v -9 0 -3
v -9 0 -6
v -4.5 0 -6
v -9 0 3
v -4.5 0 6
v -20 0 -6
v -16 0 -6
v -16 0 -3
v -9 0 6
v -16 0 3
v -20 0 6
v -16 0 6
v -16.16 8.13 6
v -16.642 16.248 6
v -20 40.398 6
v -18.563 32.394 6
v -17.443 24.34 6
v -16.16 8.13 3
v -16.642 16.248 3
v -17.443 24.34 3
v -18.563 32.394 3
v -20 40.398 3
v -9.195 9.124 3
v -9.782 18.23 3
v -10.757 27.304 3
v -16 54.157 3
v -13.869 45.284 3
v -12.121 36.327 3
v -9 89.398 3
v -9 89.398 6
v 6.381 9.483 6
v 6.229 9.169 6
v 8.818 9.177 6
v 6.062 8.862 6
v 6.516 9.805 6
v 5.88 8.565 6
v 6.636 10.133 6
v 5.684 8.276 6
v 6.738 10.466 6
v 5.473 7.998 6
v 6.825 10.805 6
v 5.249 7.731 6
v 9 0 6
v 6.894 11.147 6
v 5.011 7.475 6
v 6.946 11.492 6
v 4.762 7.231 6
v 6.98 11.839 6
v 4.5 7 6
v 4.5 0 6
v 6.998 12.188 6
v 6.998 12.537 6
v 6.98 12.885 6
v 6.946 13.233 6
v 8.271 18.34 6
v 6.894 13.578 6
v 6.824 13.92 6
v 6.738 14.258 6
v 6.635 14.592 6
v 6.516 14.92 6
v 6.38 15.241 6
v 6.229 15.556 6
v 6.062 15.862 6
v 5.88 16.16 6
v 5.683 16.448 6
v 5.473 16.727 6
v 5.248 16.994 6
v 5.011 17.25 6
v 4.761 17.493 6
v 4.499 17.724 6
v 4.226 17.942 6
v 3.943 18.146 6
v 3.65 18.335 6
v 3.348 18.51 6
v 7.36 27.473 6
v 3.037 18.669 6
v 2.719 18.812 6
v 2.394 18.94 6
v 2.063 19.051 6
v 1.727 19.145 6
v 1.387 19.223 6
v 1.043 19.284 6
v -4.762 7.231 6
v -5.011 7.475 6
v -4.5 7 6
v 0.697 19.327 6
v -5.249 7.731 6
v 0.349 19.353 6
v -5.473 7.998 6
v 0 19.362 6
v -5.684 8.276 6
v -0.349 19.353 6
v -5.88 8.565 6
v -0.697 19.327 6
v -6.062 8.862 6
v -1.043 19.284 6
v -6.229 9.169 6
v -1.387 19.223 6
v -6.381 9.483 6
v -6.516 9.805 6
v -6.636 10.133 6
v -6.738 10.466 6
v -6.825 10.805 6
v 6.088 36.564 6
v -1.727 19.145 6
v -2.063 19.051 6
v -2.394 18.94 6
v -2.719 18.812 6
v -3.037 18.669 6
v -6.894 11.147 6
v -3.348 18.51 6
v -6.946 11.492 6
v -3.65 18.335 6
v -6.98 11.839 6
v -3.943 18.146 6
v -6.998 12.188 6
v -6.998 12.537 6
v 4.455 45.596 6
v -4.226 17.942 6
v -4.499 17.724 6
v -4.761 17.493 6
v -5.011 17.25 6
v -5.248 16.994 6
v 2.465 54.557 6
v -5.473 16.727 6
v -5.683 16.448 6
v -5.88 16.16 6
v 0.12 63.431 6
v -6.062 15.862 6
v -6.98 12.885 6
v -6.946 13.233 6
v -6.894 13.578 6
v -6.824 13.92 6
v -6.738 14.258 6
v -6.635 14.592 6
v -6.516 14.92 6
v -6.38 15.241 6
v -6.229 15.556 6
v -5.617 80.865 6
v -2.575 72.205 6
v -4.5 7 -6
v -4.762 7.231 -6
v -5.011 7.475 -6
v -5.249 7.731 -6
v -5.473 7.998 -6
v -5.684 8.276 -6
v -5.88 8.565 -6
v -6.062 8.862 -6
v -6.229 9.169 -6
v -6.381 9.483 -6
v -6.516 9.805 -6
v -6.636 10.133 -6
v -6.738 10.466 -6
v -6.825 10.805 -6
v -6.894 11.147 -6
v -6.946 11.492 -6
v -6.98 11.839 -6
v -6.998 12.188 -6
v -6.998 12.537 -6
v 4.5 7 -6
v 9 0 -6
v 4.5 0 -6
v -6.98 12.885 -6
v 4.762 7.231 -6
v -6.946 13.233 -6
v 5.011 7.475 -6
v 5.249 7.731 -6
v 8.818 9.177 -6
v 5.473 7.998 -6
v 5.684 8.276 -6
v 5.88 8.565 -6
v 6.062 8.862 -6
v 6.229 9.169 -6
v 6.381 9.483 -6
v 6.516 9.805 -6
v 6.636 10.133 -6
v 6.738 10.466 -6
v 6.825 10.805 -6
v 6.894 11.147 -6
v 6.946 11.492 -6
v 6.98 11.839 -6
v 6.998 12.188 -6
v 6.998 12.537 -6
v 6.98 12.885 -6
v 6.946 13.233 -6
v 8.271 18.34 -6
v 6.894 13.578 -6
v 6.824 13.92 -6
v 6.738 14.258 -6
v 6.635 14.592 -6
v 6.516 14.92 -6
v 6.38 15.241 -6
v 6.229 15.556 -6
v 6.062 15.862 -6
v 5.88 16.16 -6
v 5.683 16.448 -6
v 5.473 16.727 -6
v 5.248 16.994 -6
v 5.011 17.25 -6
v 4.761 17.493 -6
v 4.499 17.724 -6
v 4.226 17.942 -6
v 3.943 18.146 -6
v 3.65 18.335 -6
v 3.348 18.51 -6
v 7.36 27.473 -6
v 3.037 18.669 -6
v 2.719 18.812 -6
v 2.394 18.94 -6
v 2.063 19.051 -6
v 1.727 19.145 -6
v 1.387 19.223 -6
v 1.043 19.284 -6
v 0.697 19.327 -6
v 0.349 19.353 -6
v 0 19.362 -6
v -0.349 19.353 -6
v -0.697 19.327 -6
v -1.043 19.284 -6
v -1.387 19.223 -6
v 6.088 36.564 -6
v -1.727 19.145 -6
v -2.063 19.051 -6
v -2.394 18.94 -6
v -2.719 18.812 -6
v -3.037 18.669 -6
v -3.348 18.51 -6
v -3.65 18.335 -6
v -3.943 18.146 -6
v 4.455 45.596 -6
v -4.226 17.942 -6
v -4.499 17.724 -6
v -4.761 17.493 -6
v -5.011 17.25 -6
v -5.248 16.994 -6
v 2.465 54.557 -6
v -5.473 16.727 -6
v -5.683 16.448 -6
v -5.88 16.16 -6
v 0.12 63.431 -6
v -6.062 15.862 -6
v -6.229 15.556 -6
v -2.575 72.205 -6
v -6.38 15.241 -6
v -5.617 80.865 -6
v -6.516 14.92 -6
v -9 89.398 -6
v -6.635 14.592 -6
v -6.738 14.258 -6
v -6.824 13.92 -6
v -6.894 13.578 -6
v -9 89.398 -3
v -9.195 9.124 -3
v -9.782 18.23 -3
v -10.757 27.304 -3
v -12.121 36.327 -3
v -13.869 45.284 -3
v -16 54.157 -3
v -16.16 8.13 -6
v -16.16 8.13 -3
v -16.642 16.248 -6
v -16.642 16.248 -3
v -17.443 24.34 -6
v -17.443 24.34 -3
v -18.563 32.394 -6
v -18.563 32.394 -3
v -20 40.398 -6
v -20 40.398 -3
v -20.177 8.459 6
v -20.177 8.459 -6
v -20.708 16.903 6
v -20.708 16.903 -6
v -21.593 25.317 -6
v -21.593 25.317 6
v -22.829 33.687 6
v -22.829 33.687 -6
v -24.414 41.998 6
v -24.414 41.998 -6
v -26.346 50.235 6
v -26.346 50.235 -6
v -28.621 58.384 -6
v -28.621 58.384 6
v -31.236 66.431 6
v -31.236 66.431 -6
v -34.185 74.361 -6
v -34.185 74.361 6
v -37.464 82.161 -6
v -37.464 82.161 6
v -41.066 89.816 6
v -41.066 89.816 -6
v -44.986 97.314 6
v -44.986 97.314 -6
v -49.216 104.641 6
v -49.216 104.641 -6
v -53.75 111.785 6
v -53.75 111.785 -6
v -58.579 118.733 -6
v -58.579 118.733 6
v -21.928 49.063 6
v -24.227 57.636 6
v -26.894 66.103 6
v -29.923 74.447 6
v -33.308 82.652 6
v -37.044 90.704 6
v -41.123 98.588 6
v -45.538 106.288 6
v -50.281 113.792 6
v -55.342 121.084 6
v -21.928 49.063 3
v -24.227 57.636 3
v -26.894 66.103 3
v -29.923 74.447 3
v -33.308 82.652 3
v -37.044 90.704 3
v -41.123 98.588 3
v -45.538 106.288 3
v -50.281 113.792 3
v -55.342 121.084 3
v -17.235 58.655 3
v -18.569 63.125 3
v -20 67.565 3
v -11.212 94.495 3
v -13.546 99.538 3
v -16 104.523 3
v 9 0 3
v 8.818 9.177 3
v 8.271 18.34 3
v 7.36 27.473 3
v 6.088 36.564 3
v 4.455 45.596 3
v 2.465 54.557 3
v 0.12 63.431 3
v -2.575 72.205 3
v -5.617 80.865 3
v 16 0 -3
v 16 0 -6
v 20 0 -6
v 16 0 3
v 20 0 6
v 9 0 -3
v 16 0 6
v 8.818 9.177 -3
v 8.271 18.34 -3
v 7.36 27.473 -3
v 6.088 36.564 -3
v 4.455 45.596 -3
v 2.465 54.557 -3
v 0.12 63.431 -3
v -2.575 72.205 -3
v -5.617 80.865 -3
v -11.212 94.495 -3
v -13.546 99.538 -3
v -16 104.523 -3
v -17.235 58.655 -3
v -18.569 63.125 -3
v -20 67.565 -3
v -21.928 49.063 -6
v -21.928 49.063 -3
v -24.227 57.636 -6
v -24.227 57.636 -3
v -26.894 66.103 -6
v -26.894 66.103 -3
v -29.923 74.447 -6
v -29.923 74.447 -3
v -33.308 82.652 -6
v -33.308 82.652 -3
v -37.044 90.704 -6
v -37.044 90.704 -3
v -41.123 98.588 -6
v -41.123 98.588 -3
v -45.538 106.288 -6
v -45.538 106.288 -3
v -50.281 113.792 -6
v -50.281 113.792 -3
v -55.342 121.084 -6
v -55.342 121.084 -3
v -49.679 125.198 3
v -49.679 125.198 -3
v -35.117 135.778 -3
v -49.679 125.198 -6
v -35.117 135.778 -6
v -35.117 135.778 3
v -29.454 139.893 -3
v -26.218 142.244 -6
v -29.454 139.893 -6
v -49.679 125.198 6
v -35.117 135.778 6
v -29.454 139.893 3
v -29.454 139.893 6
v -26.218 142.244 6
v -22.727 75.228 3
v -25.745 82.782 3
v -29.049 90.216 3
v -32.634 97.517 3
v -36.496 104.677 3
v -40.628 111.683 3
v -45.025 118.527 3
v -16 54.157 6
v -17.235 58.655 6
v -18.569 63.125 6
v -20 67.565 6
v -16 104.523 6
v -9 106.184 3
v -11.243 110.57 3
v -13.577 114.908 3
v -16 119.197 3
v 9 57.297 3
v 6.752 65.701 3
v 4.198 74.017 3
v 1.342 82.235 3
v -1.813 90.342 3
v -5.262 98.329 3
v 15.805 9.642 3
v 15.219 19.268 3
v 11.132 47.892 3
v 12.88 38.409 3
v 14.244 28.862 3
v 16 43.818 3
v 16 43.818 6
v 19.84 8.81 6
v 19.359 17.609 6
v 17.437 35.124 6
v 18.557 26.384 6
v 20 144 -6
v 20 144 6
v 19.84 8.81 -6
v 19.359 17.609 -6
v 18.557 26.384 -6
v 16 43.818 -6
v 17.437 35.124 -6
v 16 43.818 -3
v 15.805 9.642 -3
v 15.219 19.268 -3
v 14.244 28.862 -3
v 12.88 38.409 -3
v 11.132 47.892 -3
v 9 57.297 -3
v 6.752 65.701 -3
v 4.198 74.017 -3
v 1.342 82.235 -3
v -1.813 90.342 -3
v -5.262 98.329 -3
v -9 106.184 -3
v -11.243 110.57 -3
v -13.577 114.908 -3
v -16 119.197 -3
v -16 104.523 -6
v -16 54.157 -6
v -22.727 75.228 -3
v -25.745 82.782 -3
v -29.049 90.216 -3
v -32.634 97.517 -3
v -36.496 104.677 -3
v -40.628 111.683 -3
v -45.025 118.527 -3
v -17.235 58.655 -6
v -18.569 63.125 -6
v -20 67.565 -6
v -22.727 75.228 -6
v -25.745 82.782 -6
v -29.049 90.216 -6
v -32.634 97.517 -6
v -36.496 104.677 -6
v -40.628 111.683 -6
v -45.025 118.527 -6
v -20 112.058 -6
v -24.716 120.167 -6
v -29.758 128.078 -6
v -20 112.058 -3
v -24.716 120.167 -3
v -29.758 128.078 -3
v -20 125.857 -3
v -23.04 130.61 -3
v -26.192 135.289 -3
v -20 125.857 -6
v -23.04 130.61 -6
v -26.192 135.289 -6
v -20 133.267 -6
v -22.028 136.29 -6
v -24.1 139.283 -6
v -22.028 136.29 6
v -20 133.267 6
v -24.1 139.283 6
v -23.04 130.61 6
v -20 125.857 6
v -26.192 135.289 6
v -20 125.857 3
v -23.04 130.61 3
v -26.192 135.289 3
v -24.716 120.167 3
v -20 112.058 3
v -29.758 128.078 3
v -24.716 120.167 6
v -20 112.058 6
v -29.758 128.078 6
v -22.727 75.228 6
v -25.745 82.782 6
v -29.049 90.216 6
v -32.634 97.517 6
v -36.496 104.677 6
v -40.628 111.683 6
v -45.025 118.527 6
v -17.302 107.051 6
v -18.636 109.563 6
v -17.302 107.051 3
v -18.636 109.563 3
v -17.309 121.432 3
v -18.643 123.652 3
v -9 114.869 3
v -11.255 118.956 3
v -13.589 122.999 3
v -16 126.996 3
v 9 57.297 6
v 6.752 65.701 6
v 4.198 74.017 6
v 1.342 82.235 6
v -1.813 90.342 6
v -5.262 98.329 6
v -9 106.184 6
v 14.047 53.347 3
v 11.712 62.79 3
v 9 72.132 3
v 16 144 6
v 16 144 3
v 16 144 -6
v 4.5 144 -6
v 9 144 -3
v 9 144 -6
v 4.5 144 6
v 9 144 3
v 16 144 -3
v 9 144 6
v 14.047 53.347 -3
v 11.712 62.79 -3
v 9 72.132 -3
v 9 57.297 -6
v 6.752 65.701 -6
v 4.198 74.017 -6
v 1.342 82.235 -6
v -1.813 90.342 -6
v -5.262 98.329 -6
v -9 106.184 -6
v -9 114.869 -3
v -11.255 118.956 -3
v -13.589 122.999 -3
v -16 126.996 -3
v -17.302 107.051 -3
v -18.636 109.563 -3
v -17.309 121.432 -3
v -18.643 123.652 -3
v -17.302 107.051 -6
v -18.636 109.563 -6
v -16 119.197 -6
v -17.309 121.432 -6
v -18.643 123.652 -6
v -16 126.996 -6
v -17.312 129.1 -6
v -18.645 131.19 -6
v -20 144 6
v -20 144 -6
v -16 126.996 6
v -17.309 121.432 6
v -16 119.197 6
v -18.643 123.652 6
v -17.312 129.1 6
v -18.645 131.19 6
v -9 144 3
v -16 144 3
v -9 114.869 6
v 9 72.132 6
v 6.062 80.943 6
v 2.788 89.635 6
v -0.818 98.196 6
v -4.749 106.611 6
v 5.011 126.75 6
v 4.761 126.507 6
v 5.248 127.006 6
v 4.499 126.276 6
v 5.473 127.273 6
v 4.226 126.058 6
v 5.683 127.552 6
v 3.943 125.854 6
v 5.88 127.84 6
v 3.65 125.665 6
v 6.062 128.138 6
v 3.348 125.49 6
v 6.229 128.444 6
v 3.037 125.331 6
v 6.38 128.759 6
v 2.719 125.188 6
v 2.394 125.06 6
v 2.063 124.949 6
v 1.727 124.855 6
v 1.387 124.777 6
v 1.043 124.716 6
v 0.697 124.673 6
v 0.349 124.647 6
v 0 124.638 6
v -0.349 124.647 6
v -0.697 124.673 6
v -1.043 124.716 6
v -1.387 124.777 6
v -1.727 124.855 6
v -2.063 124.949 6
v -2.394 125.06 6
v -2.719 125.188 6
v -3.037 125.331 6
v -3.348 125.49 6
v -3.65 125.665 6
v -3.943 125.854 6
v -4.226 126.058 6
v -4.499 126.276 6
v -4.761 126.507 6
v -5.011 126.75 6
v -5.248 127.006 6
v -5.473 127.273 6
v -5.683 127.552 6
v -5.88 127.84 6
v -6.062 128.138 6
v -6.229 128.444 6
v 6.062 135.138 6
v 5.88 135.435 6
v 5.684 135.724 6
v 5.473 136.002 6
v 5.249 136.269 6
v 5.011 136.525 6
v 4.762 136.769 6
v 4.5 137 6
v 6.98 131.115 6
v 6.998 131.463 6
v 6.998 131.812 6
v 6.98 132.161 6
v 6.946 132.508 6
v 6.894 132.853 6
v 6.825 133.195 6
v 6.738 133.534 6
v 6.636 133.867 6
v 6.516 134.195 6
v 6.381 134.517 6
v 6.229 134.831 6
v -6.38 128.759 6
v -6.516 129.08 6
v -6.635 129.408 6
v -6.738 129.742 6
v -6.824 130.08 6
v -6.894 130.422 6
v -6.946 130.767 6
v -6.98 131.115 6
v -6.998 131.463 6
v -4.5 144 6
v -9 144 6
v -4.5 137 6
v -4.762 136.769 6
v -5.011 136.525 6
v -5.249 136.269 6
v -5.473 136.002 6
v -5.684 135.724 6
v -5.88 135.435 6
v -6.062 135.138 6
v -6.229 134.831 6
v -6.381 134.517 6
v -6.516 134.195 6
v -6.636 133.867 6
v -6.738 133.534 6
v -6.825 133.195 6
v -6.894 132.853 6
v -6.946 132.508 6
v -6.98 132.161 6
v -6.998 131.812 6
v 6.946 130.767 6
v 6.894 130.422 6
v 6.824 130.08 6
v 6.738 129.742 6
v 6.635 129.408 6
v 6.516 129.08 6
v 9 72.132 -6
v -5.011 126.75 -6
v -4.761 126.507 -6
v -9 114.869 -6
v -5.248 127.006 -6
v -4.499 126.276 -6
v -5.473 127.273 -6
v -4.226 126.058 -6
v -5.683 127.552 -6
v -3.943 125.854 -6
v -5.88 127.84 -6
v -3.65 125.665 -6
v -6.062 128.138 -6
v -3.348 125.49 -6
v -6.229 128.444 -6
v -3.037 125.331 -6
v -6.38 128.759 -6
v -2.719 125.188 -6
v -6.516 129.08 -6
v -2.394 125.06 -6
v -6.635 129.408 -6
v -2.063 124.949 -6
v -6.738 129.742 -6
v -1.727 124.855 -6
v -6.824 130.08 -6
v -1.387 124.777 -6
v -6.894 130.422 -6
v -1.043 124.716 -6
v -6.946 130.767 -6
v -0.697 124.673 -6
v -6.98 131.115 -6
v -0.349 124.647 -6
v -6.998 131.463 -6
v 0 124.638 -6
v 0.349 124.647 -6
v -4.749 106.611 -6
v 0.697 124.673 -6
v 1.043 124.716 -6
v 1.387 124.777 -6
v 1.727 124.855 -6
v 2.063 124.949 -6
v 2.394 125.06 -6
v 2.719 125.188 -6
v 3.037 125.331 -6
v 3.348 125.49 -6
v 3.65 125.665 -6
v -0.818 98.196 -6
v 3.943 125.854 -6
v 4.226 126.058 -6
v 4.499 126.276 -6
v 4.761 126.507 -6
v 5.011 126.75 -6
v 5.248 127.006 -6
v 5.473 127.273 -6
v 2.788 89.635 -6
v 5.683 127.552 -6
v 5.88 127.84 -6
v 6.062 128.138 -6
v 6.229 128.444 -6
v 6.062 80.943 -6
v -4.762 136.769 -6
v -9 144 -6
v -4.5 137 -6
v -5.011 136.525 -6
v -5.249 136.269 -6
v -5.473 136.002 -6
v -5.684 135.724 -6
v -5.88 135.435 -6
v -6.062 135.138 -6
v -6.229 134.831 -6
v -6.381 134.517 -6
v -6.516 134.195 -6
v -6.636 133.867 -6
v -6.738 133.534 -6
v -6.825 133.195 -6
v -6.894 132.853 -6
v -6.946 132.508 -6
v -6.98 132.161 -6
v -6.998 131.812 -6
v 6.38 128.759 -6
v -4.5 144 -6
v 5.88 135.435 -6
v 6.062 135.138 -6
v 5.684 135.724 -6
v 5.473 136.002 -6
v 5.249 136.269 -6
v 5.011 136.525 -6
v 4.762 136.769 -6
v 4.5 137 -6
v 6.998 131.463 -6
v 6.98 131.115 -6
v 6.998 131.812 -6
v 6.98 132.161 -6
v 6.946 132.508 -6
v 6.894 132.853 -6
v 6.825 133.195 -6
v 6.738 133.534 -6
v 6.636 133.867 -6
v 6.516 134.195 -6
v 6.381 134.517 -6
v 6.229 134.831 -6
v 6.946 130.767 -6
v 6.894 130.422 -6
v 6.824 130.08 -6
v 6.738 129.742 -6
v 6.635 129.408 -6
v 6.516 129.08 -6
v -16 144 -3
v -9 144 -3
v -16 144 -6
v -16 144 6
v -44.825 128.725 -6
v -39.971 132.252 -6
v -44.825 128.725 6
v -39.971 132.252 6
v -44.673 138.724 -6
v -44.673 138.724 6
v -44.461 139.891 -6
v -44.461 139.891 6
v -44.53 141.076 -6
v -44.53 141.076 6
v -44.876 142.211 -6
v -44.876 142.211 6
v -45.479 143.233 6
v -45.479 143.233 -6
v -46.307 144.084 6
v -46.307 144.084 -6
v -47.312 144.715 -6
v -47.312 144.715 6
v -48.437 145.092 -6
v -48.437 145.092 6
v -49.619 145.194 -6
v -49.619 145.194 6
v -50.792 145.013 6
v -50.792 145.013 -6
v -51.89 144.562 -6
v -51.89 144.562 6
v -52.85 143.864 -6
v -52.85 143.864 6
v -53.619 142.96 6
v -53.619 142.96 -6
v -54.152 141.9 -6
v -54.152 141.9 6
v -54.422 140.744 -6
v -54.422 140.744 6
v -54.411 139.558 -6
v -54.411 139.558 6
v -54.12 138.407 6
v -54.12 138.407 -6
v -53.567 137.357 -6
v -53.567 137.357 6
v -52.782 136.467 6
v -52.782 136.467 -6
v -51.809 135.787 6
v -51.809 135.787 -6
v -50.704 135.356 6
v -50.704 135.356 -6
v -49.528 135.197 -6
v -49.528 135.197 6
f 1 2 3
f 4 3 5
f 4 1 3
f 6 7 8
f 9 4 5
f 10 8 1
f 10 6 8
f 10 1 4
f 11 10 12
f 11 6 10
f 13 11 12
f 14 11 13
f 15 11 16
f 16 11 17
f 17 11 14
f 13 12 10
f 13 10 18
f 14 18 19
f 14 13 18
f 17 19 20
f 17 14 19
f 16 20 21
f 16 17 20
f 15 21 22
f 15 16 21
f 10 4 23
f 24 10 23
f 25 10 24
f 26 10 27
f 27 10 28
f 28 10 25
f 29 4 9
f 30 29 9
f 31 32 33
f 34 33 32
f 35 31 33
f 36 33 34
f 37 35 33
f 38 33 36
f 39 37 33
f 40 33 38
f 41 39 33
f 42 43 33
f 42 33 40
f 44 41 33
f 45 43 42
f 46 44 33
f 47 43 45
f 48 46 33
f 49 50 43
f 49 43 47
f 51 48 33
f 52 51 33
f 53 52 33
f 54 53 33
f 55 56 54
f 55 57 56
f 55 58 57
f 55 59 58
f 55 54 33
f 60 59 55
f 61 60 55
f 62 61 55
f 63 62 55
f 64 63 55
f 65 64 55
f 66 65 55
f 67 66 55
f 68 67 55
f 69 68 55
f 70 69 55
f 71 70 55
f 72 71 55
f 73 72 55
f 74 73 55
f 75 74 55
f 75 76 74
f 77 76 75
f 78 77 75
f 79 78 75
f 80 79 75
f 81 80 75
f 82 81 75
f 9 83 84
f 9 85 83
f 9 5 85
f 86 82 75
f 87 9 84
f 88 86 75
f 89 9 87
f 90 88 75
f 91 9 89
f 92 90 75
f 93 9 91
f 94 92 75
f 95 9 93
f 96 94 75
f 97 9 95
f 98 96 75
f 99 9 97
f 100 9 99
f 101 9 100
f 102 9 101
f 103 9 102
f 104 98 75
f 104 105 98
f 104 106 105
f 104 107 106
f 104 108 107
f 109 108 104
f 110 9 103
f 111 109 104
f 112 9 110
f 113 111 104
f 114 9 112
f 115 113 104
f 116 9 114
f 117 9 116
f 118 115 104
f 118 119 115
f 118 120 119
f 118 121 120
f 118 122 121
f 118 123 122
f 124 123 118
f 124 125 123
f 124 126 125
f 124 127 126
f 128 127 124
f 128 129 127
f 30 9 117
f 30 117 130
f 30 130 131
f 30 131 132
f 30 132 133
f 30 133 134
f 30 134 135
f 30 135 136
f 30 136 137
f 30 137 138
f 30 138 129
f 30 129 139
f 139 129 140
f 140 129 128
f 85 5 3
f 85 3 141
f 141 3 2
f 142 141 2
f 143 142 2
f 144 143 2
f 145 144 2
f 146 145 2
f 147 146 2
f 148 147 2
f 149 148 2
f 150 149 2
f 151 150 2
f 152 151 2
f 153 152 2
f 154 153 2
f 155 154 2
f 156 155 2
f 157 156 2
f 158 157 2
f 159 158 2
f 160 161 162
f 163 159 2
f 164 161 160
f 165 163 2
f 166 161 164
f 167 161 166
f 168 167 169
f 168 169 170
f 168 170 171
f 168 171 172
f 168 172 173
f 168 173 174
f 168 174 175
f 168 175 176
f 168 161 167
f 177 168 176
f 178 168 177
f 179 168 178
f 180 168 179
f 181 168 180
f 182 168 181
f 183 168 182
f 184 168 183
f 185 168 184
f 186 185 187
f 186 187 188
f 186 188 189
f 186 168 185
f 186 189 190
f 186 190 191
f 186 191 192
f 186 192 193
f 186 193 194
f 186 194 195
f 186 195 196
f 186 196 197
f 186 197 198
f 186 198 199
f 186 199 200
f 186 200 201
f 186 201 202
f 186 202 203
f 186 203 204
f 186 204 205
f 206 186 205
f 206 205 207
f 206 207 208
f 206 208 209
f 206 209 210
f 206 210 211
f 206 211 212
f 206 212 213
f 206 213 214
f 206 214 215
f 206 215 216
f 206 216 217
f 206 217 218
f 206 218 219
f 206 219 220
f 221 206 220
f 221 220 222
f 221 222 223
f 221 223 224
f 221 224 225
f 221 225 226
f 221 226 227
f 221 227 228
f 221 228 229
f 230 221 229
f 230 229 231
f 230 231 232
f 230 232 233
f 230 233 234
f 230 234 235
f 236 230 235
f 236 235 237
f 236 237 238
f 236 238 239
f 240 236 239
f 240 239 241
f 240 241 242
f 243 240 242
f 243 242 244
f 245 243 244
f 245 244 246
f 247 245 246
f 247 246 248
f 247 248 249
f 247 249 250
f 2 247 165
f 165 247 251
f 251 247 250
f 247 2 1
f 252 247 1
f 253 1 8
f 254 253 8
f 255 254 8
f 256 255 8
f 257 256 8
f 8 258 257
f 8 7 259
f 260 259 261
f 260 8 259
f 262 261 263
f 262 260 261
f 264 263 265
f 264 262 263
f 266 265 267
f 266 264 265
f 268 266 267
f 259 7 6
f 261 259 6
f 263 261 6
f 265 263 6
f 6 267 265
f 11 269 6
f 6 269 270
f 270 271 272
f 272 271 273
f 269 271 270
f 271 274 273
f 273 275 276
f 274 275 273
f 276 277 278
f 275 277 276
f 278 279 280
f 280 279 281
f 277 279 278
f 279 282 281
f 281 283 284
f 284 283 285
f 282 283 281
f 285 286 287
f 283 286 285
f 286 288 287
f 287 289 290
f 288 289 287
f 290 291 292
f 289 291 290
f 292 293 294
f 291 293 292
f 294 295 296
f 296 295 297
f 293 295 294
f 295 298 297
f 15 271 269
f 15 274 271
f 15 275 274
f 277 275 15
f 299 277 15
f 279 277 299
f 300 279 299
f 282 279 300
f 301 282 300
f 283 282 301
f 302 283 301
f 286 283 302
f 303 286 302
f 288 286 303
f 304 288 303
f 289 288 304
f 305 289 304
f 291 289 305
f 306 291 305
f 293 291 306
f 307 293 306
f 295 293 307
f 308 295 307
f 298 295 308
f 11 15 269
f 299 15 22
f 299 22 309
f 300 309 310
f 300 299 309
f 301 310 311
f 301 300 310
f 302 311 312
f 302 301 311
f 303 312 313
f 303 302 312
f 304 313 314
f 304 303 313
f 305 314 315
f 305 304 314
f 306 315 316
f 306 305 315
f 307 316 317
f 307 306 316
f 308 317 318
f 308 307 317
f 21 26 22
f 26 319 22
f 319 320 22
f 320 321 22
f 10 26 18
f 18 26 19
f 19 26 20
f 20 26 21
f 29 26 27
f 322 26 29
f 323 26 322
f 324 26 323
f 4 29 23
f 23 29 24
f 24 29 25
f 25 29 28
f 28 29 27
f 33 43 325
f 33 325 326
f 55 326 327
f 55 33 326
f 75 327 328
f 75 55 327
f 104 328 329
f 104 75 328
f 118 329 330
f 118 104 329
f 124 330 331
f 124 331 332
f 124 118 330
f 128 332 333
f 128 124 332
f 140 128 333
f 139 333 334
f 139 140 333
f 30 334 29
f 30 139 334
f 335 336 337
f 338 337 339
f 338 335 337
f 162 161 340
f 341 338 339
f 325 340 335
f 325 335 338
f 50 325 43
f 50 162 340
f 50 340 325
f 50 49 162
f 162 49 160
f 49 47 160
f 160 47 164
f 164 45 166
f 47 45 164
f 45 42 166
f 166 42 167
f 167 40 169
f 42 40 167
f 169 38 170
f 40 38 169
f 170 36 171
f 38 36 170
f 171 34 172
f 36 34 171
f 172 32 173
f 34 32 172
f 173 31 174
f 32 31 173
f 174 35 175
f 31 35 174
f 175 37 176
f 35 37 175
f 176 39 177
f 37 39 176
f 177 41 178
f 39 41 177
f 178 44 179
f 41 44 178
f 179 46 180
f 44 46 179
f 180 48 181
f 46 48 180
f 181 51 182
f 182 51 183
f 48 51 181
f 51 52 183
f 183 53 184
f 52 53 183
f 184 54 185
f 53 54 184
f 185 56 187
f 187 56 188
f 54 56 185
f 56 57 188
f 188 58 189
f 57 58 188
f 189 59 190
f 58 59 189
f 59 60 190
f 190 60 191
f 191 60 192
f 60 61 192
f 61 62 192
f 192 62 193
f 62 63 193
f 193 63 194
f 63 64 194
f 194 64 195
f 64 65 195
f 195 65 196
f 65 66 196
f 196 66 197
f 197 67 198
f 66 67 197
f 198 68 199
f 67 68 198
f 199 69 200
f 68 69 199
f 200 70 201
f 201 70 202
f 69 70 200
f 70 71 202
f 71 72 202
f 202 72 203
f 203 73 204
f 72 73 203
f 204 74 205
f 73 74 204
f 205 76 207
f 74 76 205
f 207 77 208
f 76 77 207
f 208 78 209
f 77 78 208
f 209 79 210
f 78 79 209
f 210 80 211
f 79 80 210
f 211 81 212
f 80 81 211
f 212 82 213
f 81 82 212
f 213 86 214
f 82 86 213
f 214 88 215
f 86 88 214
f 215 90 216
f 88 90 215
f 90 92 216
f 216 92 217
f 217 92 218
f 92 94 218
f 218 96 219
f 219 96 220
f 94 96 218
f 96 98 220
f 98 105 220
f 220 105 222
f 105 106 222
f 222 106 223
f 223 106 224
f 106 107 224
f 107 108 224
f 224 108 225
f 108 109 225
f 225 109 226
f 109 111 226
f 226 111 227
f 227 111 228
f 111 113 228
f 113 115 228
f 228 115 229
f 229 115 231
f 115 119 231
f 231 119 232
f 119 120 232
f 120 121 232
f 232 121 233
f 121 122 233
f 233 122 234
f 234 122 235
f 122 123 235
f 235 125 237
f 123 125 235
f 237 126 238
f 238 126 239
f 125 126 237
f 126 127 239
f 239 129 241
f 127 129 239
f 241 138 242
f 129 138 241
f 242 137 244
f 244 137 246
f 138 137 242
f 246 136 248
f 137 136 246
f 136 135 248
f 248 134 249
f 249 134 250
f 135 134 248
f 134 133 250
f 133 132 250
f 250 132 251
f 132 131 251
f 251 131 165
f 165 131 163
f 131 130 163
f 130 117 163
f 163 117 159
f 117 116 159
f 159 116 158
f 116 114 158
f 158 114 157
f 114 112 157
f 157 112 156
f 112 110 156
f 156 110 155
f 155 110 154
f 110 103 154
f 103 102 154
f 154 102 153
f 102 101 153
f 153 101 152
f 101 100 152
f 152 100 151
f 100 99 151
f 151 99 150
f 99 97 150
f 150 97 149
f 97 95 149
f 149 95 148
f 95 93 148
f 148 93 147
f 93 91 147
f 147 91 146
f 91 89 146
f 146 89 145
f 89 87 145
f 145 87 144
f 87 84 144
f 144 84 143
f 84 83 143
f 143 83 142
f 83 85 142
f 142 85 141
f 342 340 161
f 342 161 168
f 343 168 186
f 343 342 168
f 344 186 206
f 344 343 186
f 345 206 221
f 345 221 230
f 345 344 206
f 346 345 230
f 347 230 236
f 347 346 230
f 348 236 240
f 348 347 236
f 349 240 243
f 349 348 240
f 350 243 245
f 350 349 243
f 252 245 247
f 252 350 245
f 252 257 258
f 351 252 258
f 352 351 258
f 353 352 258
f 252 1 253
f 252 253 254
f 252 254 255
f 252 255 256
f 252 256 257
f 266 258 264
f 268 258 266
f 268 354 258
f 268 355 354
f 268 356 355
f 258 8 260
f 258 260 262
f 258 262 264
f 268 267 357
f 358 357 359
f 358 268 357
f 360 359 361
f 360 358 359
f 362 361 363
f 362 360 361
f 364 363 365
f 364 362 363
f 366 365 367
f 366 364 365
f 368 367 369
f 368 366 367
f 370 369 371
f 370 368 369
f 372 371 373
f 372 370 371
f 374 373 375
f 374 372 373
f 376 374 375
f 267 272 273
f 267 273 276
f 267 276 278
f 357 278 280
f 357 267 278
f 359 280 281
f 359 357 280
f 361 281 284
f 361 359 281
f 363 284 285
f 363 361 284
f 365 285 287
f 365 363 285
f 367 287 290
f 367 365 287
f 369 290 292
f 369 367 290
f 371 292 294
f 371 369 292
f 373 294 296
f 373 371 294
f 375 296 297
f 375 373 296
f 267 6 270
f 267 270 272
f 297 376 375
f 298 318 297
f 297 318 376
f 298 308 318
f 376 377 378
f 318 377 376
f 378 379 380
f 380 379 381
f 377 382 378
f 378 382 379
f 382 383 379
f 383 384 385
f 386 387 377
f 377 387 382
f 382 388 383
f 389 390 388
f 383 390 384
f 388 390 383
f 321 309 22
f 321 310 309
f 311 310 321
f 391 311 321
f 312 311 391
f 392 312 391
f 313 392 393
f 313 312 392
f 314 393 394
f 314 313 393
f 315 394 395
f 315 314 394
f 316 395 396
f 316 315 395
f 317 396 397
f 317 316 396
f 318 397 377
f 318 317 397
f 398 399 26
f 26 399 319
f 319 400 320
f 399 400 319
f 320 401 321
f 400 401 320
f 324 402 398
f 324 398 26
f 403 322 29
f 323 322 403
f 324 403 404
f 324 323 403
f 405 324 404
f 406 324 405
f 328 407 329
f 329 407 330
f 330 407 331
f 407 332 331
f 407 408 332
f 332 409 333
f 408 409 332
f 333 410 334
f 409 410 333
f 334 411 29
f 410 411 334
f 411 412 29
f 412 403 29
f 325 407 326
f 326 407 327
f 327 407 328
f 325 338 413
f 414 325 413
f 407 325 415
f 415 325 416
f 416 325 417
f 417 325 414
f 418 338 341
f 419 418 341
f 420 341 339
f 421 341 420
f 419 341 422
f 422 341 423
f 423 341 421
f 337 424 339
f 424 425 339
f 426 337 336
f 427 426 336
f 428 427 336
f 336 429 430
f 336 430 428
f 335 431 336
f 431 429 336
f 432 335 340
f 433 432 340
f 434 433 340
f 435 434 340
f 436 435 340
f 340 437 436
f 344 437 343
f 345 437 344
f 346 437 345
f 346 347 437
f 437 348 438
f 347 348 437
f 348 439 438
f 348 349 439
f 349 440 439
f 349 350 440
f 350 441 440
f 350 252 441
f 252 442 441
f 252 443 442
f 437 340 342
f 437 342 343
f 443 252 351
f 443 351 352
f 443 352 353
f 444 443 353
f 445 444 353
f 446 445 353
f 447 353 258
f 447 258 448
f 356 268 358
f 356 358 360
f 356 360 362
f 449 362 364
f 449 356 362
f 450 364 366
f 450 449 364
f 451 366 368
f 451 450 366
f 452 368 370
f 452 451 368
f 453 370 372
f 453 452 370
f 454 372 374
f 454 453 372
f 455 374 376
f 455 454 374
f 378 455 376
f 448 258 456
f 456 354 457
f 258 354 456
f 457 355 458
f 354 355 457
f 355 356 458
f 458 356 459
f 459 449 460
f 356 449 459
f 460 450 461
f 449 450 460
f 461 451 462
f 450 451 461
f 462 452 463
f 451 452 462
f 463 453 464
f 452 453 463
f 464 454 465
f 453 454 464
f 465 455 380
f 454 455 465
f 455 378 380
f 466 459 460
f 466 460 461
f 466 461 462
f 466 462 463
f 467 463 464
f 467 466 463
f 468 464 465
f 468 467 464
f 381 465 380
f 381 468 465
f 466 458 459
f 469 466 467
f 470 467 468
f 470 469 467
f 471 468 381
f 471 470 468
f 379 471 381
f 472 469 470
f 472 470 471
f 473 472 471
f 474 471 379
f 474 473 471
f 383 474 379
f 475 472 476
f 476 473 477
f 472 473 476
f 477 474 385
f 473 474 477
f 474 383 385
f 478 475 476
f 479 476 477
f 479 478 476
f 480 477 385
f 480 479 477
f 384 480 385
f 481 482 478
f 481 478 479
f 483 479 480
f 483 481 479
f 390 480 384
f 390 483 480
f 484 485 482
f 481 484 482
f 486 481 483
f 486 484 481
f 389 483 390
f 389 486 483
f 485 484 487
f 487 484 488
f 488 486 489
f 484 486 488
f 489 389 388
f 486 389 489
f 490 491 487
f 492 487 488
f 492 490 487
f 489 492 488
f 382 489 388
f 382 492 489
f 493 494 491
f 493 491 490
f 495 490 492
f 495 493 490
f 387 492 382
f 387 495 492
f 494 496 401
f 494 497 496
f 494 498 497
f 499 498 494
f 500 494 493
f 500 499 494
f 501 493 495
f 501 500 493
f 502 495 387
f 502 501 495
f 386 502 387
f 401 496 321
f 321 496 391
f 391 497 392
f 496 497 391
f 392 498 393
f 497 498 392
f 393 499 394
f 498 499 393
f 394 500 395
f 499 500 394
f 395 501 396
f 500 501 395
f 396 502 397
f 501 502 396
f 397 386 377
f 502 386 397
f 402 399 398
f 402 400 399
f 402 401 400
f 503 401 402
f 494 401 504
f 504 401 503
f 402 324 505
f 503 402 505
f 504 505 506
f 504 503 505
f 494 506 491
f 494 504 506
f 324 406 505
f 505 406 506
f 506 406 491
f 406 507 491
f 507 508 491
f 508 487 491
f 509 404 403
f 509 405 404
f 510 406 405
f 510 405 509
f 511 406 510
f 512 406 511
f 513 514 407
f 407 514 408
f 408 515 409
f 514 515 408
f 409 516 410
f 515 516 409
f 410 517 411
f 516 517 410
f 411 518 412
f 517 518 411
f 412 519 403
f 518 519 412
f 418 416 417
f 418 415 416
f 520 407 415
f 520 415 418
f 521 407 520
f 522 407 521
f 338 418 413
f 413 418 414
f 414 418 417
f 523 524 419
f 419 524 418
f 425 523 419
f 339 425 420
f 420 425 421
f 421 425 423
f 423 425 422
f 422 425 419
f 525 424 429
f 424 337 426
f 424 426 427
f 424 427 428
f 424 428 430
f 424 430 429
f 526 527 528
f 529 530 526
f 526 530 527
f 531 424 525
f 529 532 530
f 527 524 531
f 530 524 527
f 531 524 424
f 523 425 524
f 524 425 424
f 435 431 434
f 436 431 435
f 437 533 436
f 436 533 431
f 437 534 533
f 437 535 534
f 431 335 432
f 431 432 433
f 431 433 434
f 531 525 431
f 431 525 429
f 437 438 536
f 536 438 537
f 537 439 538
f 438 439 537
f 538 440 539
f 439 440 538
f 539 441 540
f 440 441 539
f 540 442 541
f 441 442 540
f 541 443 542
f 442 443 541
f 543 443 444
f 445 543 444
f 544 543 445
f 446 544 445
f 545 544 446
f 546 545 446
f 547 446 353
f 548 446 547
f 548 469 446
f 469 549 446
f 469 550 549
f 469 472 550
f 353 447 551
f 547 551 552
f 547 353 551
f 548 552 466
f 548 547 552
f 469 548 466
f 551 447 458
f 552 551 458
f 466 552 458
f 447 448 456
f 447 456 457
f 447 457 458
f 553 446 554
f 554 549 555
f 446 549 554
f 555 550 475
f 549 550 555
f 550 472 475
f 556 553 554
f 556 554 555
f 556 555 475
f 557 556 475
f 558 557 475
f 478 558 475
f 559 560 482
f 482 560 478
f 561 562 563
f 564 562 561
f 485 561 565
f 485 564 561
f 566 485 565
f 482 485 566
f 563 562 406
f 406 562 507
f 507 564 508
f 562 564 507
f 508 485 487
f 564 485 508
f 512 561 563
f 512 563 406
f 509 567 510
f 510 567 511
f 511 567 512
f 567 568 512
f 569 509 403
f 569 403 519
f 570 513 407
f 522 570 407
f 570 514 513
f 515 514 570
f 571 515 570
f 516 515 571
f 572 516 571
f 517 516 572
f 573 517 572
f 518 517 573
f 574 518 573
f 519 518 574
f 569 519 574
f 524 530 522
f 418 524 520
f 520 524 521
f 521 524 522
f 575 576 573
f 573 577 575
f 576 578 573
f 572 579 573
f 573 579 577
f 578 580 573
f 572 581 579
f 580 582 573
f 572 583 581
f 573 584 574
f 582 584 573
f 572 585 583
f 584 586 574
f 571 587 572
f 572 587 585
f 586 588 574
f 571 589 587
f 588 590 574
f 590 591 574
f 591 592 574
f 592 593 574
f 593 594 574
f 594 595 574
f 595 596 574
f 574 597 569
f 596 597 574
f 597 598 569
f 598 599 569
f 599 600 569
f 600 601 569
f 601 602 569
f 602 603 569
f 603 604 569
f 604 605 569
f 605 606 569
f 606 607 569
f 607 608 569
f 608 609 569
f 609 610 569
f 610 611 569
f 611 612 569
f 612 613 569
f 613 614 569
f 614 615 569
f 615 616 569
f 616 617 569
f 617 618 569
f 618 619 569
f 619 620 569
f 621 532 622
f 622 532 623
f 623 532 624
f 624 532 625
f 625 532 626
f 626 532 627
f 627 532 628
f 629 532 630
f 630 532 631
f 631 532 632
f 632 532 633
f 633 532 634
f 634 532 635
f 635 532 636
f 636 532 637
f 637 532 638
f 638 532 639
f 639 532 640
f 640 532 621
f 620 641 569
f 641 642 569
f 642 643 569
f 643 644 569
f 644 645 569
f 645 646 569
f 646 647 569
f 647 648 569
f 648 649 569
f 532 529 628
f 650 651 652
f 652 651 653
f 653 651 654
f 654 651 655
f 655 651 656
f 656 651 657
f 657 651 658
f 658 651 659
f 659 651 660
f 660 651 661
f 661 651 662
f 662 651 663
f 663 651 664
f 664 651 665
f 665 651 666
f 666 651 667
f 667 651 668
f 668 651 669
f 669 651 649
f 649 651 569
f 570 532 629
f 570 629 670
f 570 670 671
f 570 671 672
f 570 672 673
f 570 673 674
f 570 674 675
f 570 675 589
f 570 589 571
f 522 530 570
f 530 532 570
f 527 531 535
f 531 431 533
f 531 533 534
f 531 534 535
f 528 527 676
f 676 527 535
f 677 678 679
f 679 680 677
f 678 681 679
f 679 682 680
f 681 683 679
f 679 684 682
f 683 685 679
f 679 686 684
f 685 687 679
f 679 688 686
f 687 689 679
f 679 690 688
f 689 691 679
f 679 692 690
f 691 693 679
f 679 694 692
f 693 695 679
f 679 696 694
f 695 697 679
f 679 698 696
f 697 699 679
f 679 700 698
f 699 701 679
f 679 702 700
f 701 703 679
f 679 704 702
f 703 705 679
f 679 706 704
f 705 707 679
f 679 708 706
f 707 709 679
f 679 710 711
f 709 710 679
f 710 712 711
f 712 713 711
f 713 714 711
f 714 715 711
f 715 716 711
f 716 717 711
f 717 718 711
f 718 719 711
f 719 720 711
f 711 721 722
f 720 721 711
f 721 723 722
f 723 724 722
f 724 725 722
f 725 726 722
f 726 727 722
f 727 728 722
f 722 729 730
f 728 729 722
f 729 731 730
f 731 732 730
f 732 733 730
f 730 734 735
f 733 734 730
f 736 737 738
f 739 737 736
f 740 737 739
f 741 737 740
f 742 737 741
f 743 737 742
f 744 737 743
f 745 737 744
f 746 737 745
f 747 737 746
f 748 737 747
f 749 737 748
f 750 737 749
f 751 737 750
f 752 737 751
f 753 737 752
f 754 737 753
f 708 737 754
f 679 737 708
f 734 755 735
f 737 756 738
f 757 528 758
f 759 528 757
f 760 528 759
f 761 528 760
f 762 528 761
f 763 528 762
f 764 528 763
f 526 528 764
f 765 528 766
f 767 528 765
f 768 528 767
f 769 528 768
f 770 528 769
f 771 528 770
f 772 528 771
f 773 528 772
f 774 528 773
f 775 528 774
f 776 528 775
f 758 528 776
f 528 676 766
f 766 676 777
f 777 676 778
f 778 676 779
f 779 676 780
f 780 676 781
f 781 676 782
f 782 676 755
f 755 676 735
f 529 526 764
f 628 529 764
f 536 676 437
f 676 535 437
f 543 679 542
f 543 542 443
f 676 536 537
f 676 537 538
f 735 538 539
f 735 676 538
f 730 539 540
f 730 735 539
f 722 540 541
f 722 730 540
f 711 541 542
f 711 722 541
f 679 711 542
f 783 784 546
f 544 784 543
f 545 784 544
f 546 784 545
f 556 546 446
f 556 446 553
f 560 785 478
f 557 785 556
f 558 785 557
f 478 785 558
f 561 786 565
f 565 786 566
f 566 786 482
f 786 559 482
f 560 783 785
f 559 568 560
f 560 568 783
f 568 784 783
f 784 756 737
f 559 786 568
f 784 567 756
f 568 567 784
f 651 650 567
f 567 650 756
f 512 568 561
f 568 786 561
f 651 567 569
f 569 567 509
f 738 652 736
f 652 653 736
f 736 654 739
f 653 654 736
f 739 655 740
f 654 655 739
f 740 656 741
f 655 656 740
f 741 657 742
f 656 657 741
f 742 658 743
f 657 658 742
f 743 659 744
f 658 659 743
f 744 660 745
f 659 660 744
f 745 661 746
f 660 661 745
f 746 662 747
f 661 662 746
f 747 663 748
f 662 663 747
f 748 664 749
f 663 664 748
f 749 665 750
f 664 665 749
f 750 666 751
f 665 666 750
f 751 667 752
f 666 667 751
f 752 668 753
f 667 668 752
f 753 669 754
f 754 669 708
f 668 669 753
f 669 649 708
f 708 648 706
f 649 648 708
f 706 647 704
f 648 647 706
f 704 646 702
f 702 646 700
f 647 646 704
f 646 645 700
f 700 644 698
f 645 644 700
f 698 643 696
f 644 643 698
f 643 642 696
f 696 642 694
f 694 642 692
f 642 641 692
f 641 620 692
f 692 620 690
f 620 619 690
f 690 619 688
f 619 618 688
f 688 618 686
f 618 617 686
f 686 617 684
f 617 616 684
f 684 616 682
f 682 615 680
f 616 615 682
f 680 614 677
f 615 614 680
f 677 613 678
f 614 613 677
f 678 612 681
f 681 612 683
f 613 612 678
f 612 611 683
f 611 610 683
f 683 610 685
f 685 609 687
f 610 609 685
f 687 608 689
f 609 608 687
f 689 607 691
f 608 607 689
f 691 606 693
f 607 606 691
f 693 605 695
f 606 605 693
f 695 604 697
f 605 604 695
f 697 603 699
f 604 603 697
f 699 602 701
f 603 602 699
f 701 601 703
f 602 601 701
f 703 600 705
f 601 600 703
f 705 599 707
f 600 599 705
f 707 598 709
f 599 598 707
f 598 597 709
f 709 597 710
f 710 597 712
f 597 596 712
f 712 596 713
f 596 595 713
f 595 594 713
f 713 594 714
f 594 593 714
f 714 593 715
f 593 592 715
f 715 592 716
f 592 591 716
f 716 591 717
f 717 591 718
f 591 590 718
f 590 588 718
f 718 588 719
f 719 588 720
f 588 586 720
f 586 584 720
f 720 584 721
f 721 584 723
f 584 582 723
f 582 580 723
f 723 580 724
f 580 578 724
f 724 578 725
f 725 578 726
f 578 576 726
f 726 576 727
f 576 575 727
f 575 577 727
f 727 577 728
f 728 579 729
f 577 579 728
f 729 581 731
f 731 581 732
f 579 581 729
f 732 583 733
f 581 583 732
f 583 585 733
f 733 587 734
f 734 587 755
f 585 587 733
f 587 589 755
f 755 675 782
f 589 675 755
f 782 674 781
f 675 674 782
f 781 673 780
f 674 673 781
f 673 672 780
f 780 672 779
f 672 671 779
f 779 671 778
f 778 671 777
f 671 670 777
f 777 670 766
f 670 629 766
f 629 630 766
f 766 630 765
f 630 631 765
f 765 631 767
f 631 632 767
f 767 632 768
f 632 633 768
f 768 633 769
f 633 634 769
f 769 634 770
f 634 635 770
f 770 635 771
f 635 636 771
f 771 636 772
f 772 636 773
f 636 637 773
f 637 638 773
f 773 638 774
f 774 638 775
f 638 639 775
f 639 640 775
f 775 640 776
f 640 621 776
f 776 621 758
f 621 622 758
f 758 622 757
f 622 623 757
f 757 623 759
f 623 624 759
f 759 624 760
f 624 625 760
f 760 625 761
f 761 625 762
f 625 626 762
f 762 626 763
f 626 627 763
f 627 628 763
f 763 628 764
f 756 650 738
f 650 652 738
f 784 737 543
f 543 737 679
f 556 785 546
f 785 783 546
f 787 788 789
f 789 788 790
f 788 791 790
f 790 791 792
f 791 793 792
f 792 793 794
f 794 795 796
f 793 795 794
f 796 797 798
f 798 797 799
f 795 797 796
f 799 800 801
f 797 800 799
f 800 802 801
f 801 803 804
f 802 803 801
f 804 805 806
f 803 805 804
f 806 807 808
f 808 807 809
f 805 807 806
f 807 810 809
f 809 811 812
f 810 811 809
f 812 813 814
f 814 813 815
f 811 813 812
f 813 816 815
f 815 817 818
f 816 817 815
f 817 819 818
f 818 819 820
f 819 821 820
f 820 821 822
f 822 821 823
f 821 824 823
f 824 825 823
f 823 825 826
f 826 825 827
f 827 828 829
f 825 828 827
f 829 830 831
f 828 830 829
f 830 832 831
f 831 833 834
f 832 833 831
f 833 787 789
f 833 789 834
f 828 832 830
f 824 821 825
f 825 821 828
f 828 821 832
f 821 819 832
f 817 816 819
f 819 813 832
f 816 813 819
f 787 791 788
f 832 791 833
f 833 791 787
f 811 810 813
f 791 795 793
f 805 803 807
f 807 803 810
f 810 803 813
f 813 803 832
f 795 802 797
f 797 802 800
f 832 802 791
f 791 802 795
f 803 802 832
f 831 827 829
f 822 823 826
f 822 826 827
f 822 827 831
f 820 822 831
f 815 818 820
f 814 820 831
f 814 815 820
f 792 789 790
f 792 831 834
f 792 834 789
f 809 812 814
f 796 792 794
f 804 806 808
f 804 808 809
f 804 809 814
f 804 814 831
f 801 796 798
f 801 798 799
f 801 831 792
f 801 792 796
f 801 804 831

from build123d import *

# Parameters (mm, degrees)
SKETCH004_W          = 7
SKETCH004_H          = 3
SKETCH005_W          = 7
SKETCH005_H          = 3
SKETCH009_W          = 7
SKETCH009_H          = 3
SKETCH010_W          = 7
SKETCH010_H          = 3
POCKET_DEPTH         = 6.001
POCKET_DEPTH_BACK    = -6.001
POCKET001_DEPTH      = 6.001
POCKET001_DEPTH_BACK = -6.001
PAD002_DEPTH         = 6


with BuildPart() as body:
    # AdditivePipe: sweep along a path in Sketch002
    with BuildLine(Plane.XY) as additivepipe_path:
        ThreePointArc((0, 0), (-10.865453, 68.601773), (-42.398227, 130.488326))
    # Sketch → AdditivePipe (sweep)
    with BuildSketch(Plane.XZ):
        Polygon((-20, 6), (-20, -6), (-16, -6), (-16, -3), (-9, -3), (-9, -6), (9, -6), (9, -3), (16, -3), (16, -6), (20, -6), (20, 6), (16, 6), (16, 3), (9, 3), (9, 6), (-9, 6), (-9, 3), (-16, 3), (-16, 6), align=None)
    sweep(path=additivepipe_path.line)

    # AdditivePipe001: sweep along a path in Sketch001
    with BuildLine(Plane.XY) as additivepipe001_path:
        Line((0, 0), (0, 144))
    # Sketch → AdditivePipe001 (sweep)
    with BuildSketch(Plane.XZ):
        Polygon((-20, 6), (-20, -6), (-16, -6), (-16, -3), (-9, -3), (-9, -6), (9, -6), (9, -3), (16, -3), (16, -6), (20, -6), (20, 6), (16, 6), (16, 3), (9, 3), (9, 6), (-9, 6), (-9, 3), (-16, 3), (-16, 6), align=None)
    sweep(path=additivepipe001_path.line)

    # SubtractivePipe: sweep along a path in Sketch001
    with BuildLine(Plane.XY) as subtractivepipe_path:
        Line((0, 0), (0, 144))
    # Sketch004 → SubtractivePipe (sweep, cut)
    with BuildSketch(Plane.XZ):
        with Locations((-12.5, 4.5)):
            Rectangle(SKETCH004_W, SKETCH004_H)
    sweep(path=subtractivepipe_path.line, mode=Mode.SUBTRACT)

    # SubtractivePipe001: sweep along a path in Sketch002
    with BuildLine(Plane.XY) as subtractivepipe001_path:
        ThreePointArc((0, 0), (-10.865453, 68.601773), (-42.398227, 130.488326))
    # Sketch004 → SubtractivePipe001 (sweep, cut)
    with BuildSketch(Plane.XZ):
        with Locations((-12.5, 4.5)):
            Rectangle(SKETCH004_W, SKETCH004_H)
    sweep(path=subtractivepipe001_path.line, mode=Mode.SUBTRACT)

    # SubtractivePipe002: sweep along a path in Sketch002
    with BuildLine(Plane.XY) as subtractivepipe002_path:
        ThreePointArc((0, 0), (-10.865453, 68.601773), (-42.398227, 130.488326))
    # Sketch005 (on Face1 of SubtractivePipe001) → SubtractivePipe002 (sweep, cut)
    with BuildSketch(Plane.XZ):
        with Locations((12.5, 4.5)):
            Rectangle(SKETCH005_W, SKETCH005_H)
    sweep(path=subtractivepipe002_path.line, mode=Mode.SUBTRACT)

    # SubtractivePipe003: sweep along a path in Sketch001
    with BuildLine(Plane.XY) as subtractivepipe003_path:
        Line((0, 0), (0, 144))
    # Sketch005 (on Face1 of SubtractivePipe001) → SubtractivePipe003 (sweep, cut)
    with BuildSketch(Plane.XZ):
        with Locations((12.5, 4.5)):
            Rectangle(SKETCH005_W, SKETCH005_H)
    subtractivepipe003 = sweep(path=subtractivepipe003_path.line, mode=Mode.SUBTRACT)

    # Mirrored: SubtractivePipe003 across XY
    add(subtractivepipe003.mirror(Plane.XY), mode=Mode.SUBTRACT)

    # SubtractivePipe004: sweep along a path in Sketch002
    with BuildLine(Plane.XY) as subtractivepipe004_path:
        ThreePointArc((0, 0), (-10.865453, 68.601773), (-42.398227, 130.488326))
    # Sketch009 → SubtractivePipe004 (sweep, cut)
    with BuildSketch(Plane.XZ):
        with Locations((-12.5, -4.5)):
            Rectangle(SKETCH009_W, SKETCH009_H)
    sweep(path=subtractivepipe004_path.line, mode=Mode.SUBTRACT)

    # SubtractivePipe005: sweep along a path in Sketch001
    with BuildLine(Plane.XY) as subtractivepipe005_path:
        Line((0, 0), (0, 144))
    # Sketch009 → SubtractivePipe005 (sweep, cut)
    with BuildSketch(Plane.XZ):
        with Locations((-12.5, -4.5)):
            Rectangle(SKETCH009_W, SKETCH009_H)
    sweep(path=subtractivepipe005_path.line, mode=Mode.SUBTRACT)

    # SubtractivePipe006: sweep along a path in Sketch002
    with BuildLine(Plane.XY) as subtractivepipe006_path:
        ThreePointArc((0, 0), (-10.865453, 68.601773), (-42.398227, 130.488326))
    # Sketch010 (on Face1 of SubtractivePipe005) → SubtractivePipe006 (sweep, cut)
    with BuildSketch(Plane.XZ):
        with Locations((12.5, -4.5)):
            Rectangle(SKETCH010_W, SKETCH010_H)
    sweep(path=subtractivepipe006_path.line, mode=Mode.SUBTRACT)

    # Sketch013 → Pocket (cut, two sides)
    with BuildSketch(Plane.XY) as pocket_sk:
        with BuildLine():
            Line((-4.5, 144), (4.5, 144))
            Line((4.5, 144), (4.5, 137))
            ThreePointArc((-4.5, 137), (0, 124.638097), (4.5, 137))
            Line((-4.5, 144), (-4.5, 137))
        make_face()
    extrude(amount=-POCKET_DEPTH, mode=Mode.SUBTRACT)
    extrude(pocket_sk.sketch, amount=-POCKET_DEPTH_BACK, mode=Mode.SUBTRACT)

    # Sketch014 → Pocket001 (cut, two sides)
    with BuildSketch(Plane.XY) as pocket001_sk:
        with BuildLine():
            Line((-4.5, 0), (4.5, 0))
            Line((4.5, 0), (4.5, 7))
            ThreePointArc((4.5, 7), (0, 19.361903), (-4.5, 7))
            Line((-4.5, 0), (-4.5, 7))
        make_face()
    extrude(amount=-POCKET001_DEPTH, mode=Mode.SUBTRACT)
    extrude(pocket001_sk.sketch, amount=-POCKET001_DEPTH_BACK, mode=Mode.SUBTRACT)


with BuildPart() as body003:
    # Sketch012 → Pad002 (new body, symmetric)
    with BuildSketch(Plane.XY):
        with BuildLine():
            Line((-44.825278, 128.72497), (-39.971176, 132.251682))
            Line((-39.971176, 132.251682), (-44.673458, 138.723818))
            ThreePointArc((-44.673458, 138.723818), (-52.390577, 144.241615), (-49.52756, 135.197106))
            Line((-44.825278, 128.72497), (-49.52756, 135.197106))
        make_face()
    extrude(amount=PAD002_DEPTH, both=True)


solid = Compound([body.part, body003.part])
